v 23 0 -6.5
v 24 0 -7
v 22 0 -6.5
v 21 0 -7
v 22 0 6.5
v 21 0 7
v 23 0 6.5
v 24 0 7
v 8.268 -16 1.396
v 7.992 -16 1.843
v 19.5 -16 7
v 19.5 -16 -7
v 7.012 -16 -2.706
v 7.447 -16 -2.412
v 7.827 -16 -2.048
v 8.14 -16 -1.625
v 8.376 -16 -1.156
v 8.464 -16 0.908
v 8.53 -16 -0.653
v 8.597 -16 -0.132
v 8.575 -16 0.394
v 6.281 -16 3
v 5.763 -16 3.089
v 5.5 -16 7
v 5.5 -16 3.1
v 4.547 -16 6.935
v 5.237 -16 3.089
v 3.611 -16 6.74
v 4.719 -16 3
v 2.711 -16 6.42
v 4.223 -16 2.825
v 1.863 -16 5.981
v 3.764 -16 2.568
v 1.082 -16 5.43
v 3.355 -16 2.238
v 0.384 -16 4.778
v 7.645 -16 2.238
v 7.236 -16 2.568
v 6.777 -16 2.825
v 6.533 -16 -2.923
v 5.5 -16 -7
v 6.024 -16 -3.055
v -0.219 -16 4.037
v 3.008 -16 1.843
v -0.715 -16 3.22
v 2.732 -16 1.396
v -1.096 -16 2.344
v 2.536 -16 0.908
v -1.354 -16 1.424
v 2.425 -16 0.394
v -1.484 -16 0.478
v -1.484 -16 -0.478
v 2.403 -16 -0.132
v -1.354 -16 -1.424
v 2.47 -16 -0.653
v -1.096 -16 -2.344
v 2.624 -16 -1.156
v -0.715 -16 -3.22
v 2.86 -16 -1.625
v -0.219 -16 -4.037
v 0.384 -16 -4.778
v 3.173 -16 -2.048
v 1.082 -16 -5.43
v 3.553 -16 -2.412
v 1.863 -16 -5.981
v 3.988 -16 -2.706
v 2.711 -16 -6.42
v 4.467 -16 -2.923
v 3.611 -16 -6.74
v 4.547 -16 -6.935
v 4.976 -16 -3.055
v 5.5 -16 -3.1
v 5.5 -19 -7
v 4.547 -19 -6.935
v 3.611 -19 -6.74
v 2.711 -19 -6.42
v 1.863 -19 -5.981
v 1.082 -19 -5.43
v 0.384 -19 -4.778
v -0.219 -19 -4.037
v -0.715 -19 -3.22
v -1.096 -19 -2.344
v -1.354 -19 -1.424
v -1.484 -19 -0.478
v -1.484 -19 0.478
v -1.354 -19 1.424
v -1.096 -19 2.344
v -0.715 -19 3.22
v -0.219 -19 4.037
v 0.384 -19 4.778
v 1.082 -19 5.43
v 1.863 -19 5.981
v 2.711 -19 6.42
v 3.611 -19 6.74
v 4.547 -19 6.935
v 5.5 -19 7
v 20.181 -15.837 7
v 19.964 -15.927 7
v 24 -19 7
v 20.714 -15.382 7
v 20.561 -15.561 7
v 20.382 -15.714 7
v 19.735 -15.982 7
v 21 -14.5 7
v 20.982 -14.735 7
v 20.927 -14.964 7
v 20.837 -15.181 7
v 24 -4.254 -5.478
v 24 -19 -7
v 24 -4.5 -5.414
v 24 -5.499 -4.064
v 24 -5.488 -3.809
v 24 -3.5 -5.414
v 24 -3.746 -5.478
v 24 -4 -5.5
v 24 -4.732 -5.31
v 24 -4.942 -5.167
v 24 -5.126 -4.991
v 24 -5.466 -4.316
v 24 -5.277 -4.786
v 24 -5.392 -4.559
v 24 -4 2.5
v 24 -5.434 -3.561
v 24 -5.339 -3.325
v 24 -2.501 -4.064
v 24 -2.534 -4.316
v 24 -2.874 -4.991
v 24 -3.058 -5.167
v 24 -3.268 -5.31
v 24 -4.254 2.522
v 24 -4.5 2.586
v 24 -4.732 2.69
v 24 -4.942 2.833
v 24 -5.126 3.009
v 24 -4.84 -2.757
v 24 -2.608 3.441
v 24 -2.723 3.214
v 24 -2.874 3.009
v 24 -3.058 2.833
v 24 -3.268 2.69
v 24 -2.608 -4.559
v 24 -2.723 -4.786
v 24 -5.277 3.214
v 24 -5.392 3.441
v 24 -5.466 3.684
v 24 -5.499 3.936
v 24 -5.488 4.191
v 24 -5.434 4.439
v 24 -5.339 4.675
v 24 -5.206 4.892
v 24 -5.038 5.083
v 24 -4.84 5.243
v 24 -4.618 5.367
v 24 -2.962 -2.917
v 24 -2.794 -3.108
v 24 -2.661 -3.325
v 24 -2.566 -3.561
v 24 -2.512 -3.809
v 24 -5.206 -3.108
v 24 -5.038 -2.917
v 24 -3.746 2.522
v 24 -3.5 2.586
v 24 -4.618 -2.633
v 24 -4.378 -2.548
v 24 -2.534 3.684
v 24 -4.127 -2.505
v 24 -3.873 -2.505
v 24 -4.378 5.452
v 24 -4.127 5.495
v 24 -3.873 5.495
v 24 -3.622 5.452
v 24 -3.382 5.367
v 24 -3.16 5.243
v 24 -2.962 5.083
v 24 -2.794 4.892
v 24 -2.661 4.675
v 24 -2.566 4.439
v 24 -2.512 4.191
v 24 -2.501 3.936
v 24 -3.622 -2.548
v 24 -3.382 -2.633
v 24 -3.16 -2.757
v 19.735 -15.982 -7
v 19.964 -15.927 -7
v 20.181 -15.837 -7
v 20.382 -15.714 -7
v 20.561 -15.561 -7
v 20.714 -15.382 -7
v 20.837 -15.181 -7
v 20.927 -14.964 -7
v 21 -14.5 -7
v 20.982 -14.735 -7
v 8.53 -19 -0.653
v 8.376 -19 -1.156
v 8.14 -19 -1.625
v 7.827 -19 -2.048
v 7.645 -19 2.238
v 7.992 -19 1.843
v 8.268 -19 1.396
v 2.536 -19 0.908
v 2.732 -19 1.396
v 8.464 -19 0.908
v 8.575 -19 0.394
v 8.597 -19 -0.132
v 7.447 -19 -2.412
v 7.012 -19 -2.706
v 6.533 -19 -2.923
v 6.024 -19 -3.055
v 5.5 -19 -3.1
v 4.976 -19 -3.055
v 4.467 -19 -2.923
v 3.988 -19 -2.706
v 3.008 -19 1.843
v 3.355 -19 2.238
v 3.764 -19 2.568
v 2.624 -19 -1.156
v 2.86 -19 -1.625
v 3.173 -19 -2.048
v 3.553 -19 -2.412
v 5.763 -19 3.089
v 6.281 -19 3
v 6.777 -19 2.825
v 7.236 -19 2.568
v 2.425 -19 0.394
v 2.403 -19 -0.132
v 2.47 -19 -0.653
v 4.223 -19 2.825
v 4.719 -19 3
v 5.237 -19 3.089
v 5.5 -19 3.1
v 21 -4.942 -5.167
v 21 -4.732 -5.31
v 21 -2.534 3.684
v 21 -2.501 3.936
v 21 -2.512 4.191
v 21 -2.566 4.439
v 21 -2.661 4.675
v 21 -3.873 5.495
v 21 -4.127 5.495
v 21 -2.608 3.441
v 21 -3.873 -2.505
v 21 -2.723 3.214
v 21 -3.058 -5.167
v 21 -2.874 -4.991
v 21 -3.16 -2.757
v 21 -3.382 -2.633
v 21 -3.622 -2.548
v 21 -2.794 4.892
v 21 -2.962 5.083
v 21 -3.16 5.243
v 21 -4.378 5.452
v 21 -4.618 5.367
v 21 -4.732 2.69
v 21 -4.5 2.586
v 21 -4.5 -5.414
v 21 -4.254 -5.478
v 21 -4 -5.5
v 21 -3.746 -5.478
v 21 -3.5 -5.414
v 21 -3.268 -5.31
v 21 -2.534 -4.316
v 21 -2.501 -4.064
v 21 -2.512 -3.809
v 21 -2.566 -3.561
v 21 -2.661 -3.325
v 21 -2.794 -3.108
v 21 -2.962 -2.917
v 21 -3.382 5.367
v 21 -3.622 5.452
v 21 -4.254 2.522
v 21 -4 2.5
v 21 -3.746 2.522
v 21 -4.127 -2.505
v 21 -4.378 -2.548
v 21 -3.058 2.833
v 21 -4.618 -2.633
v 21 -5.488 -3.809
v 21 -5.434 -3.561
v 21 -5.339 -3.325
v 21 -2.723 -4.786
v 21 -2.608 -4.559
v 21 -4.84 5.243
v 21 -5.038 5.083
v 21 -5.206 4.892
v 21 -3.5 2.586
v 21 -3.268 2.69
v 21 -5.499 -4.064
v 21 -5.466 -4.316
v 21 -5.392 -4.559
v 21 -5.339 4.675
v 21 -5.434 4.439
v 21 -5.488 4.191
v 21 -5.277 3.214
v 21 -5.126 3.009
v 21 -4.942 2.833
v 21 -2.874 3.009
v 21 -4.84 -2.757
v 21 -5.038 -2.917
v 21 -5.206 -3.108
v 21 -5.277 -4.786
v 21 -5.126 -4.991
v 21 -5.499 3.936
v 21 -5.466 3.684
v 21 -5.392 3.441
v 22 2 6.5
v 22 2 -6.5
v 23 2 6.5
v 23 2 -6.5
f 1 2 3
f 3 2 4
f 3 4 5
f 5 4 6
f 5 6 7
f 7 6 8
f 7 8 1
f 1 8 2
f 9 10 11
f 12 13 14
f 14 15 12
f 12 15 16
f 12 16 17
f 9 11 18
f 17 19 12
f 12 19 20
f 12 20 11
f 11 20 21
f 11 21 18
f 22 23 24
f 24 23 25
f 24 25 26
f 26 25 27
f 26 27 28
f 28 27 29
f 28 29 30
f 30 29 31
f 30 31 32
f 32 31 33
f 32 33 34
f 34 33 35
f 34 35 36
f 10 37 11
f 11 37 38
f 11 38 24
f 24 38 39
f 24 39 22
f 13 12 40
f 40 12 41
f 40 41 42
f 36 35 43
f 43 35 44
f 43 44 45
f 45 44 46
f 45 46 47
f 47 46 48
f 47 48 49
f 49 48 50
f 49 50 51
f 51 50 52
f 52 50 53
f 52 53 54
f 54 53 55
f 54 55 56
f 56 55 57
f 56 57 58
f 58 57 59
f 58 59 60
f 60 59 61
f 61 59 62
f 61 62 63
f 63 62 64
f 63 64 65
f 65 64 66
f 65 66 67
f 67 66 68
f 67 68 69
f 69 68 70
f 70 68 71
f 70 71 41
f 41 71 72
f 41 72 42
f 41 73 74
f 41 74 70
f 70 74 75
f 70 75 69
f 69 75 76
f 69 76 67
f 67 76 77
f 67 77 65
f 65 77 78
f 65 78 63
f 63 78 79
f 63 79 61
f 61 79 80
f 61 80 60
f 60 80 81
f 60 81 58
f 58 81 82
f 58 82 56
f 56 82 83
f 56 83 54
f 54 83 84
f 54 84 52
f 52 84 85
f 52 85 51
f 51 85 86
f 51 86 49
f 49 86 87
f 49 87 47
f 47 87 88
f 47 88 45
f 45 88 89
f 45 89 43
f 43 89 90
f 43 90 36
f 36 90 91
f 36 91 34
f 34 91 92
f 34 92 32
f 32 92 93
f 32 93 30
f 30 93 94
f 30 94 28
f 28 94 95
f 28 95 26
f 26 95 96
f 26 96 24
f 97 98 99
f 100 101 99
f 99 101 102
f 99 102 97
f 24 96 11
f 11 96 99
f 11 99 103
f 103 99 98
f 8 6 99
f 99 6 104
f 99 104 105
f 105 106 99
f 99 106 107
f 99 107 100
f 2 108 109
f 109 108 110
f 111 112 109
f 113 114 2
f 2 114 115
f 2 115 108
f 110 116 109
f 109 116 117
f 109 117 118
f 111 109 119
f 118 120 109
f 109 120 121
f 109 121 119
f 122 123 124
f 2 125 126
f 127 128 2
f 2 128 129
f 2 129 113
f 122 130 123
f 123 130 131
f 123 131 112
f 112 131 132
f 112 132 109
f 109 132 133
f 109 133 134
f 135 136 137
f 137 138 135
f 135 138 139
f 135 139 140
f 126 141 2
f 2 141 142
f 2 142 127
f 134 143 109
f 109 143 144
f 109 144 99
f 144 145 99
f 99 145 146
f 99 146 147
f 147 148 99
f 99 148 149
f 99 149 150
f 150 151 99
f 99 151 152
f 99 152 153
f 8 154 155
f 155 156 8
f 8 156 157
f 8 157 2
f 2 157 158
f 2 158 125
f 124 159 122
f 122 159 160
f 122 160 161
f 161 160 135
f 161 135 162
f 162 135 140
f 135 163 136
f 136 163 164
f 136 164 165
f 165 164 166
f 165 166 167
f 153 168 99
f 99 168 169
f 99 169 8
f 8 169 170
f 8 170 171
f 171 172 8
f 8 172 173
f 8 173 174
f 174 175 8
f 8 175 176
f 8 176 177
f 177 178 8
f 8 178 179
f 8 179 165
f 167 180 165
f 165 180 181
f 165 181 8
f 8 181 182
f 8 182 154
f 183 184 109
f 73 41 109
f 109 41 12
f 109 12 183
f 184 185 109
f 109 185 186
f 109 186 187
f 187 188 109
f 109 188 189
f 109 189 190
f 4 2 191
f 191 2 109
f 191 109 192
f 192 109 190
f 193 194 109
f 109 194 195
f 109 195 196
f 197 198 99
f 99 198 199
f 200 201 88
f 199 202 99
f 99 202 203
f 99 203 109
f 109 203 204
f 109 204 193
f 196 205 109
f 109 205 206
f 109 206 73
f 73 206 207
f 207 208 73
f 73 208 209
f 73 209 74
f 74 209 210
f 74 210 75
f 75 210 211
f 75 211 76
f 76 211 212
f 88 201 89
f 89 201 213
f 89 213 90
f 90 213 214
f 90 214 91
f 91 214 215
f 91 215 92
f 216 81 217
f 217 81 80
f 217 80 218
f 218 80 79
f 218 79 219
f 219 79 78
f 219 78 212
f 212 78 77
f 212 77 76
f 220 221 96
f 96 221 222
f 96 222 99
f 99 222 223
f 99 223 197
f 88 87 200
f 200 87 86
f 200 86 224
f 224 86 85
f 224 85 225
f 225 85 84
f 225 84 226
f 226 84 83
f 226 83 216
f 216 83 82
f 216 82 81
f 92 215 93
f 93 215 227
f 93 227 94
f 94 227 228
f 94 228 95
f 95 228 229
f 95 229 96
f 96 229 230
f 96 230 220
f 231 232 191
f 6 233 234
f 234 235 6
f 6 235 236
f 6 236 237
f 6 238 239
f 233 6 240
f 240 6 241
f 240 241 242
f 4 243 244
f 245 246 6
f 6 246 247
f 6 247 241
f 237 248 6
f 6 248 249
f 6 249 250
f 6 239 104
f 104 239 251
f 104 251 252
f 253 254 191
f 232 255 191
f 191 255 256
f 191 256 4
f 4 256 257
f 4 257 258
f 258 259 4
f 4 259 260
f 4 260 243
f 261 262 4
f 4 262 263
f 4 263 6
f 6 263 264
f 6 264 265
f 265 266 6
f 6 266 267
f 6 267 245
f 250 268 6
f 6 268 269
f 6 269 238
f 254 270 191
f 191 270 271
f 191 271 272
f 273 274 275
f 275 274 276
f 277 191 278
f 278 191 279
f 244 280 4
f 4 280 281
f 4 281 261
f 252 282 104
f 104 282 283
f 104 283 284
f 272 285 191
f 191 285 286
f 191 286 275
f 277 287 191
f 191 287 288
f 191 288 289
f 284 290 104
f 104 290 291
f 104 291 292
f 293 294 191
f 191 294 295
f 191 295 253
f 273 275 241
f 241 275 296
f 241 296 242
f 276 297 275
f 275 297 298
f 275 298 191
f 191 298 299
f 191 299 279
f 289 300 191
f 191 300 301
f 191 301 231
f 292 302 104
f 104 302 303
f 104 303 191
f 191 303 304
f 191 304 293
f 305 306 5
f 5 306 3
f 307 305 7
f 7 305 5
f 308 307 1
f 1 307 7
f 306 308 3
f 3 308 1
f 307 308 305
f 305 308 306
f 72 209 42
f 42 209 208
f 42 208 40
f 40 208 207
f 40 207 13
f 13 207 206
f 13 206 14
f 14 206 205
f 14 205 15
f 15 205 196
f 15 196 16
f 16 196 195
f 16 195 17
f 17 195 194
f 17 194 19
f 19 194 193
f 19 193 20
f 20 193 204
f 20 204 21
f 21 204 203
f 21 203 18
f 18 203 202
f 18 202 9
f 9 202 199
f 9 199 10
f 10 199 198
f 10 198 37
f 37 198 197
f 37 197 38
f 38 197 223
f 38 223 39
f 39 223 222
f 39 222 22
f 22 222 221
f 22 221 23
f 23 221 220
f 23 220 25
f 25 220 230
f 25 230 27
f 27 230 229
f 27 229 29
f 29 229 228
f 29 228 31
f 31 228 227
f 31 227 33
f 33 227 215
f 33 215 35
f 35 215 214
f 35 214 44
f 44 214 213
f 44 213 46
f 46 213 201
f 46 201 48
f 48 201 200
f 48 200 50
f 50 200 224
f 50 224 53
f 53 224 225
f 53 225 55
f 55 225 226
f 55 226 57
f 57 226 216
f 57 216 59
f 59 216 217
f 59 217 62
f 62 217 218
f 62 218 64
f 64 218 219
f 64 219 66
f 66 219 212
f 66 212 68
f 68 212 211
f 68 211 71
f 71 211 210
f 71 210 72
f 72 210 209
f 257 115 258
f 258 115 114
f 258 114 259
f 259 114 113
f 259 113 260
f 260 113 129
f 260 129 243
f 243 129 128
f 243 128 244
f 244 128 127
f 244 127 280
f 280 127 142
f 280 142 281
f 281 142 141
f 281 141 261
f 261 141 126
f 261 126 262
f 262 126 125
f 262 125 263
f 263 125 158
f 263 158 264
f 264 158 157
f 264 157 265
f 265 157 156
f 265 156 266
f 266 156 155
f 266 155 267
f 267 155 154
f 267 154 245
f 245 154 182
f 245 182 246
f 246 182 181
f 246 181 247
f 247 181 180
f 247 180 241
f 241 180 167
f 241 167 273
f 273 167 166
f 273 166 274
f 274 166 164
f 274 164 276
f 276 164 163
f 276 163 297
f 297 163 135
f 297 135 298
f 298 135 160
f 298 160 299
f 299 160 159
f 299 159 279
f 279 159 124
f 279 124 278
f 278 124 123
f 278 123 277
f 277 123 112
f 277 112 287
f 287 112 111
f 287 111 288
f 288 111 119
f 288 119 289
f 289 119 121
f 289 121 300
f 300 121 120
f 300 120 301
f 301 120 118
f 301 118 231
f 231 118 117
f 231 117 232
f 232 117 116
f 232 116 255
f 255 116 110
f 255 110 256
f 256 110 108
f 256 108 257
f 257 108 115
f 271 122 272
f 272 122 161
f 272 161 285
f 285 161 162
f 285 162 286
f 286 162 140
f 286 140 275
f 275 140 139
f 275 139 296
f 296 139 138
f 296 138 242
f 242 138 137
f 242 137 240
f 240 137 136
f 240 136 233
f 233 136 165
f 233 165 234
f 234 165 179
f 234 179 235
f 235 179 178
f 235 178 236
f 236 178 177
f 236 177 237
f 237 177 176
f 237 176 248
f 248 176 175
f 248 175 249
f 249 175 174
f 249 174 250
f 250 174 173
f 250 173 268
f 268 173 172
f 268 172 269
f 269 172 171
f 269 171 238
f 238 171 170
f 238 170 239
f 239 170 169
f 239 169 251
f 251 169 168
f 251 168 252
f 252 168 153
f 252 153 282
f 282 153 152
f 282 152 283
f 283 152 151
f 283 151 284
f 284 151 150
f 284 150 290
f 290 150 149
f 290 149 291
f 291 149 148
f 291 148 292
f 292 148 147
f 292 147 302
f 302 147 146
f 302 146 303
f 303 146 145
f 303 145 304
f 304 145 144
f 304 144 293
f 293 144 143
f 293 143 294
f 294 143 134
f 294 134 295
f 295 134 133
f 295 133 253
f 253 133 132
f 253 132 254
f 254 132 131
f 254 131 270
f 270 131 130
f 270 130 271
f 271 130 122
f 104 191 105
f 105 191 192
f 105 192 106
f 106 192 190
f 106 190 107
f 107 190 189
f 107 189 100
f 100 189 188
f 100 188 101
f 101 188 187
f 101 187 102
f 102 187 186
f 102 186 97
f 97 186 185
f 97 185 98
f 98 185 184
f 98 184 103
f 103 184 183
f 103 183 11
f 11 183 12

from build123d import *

# Parameters (mm, degrees)
BOSS_EXTRUDE1_DEPTH = 3
SKETCH2_W           = 3
SKETCH2_H           = 19
BOSS_EXTRUDE2_DEPTH = 7
SKETCH3_W           = 1
SKETCH3_H           = 13
BOSS_EXTRUDE3_DEPTH = 2
SKETCH4_R           = 3.1
CUT_EXTRUDE2_DEPTH  = 3
SKETCH5_R           = 1.5
CUT_EXTRUDE3_DEPTH  = 3
FILLET1_R           = 1.5


with BuildPart() as part:
    # Sketch1 → Boss-Extrude1 (new body)
    with BuildSketch(Plane(origin=(0, -19, 0), x_dir=(1, 0, 0), z_dir=(0, 1, 0))):
        with BuildLine():
            Line((5.5, -7), (24, -7))
            Line((24, -7), (24, 7))
            Line((24, 7), (5.5, 7))
            ThreePointArc((5.5, 7), (-1.5, 0), (5.5, -7))
        make_face()
    extrude(amount=BOSS_EXTRUDE1_DEPTH)

    # Sketch2 → Boss-Extrude2 (add, symmetric)
    with BuildSketch(Plane.XY):
        with Locations((22.5, -9.5)):
            Rectangle(SKETCH2_W, SKETCH2_H)
    extrude(amount=BOSS_EXTRUDE2_DEPTH, both=True)

    # Sketch3 → Boss-Extrude3 (add)
    with BuildSketch(Plane(origin=(0, 0, 0), x_dir=(1, 0, 0), z_dir=(0, 1, 0))):
        with Locations((22.5, 0)):
            Rectangle(SKETCH3_W, SKETCH3_H)
    extrude(amount=BOSS_EXTRUDE3_DEPTH)

    # Sketch4 → Cut-Extrude2 (cut)
    with BuildSketch(Plane(origin=(0, -19, 0), x_dir=(1, 0, 0), z_dir=(0, 1, 0))):
        with Locations(Location((5.5, 0, 0), (0, 0, 270))):
            Circle(SKETCH4_R)
    extrude(amount=CUT_EXTRUDE2_DEPTH, mode=Mode.SUBTRACT)

    # Sketch5 → Cut-Extrude3 (cut)
    with BuildSketch(Plane(origin=(24, 0, 0), x_dir=(0, 0, -1), z_dir=(1, 0, 0))):
        with Locations((-4, -4)):
            Circle(SKETCH5_R)
        with Locations((4, -4)):
            Circle(SKETCH5_R)
    extrude(amount=-CUT_EXTRUDE3_DEPTH, mode=Mode.SUBTRACT)

    # Fillet1
    fillet1_edges = [part.edges().sort_by_distance(p)[0] for p in [
        (21, -16, 0),
    ]]
    fillet(fillet1_edges, radius=FILLET1_R)


solid = part.part
